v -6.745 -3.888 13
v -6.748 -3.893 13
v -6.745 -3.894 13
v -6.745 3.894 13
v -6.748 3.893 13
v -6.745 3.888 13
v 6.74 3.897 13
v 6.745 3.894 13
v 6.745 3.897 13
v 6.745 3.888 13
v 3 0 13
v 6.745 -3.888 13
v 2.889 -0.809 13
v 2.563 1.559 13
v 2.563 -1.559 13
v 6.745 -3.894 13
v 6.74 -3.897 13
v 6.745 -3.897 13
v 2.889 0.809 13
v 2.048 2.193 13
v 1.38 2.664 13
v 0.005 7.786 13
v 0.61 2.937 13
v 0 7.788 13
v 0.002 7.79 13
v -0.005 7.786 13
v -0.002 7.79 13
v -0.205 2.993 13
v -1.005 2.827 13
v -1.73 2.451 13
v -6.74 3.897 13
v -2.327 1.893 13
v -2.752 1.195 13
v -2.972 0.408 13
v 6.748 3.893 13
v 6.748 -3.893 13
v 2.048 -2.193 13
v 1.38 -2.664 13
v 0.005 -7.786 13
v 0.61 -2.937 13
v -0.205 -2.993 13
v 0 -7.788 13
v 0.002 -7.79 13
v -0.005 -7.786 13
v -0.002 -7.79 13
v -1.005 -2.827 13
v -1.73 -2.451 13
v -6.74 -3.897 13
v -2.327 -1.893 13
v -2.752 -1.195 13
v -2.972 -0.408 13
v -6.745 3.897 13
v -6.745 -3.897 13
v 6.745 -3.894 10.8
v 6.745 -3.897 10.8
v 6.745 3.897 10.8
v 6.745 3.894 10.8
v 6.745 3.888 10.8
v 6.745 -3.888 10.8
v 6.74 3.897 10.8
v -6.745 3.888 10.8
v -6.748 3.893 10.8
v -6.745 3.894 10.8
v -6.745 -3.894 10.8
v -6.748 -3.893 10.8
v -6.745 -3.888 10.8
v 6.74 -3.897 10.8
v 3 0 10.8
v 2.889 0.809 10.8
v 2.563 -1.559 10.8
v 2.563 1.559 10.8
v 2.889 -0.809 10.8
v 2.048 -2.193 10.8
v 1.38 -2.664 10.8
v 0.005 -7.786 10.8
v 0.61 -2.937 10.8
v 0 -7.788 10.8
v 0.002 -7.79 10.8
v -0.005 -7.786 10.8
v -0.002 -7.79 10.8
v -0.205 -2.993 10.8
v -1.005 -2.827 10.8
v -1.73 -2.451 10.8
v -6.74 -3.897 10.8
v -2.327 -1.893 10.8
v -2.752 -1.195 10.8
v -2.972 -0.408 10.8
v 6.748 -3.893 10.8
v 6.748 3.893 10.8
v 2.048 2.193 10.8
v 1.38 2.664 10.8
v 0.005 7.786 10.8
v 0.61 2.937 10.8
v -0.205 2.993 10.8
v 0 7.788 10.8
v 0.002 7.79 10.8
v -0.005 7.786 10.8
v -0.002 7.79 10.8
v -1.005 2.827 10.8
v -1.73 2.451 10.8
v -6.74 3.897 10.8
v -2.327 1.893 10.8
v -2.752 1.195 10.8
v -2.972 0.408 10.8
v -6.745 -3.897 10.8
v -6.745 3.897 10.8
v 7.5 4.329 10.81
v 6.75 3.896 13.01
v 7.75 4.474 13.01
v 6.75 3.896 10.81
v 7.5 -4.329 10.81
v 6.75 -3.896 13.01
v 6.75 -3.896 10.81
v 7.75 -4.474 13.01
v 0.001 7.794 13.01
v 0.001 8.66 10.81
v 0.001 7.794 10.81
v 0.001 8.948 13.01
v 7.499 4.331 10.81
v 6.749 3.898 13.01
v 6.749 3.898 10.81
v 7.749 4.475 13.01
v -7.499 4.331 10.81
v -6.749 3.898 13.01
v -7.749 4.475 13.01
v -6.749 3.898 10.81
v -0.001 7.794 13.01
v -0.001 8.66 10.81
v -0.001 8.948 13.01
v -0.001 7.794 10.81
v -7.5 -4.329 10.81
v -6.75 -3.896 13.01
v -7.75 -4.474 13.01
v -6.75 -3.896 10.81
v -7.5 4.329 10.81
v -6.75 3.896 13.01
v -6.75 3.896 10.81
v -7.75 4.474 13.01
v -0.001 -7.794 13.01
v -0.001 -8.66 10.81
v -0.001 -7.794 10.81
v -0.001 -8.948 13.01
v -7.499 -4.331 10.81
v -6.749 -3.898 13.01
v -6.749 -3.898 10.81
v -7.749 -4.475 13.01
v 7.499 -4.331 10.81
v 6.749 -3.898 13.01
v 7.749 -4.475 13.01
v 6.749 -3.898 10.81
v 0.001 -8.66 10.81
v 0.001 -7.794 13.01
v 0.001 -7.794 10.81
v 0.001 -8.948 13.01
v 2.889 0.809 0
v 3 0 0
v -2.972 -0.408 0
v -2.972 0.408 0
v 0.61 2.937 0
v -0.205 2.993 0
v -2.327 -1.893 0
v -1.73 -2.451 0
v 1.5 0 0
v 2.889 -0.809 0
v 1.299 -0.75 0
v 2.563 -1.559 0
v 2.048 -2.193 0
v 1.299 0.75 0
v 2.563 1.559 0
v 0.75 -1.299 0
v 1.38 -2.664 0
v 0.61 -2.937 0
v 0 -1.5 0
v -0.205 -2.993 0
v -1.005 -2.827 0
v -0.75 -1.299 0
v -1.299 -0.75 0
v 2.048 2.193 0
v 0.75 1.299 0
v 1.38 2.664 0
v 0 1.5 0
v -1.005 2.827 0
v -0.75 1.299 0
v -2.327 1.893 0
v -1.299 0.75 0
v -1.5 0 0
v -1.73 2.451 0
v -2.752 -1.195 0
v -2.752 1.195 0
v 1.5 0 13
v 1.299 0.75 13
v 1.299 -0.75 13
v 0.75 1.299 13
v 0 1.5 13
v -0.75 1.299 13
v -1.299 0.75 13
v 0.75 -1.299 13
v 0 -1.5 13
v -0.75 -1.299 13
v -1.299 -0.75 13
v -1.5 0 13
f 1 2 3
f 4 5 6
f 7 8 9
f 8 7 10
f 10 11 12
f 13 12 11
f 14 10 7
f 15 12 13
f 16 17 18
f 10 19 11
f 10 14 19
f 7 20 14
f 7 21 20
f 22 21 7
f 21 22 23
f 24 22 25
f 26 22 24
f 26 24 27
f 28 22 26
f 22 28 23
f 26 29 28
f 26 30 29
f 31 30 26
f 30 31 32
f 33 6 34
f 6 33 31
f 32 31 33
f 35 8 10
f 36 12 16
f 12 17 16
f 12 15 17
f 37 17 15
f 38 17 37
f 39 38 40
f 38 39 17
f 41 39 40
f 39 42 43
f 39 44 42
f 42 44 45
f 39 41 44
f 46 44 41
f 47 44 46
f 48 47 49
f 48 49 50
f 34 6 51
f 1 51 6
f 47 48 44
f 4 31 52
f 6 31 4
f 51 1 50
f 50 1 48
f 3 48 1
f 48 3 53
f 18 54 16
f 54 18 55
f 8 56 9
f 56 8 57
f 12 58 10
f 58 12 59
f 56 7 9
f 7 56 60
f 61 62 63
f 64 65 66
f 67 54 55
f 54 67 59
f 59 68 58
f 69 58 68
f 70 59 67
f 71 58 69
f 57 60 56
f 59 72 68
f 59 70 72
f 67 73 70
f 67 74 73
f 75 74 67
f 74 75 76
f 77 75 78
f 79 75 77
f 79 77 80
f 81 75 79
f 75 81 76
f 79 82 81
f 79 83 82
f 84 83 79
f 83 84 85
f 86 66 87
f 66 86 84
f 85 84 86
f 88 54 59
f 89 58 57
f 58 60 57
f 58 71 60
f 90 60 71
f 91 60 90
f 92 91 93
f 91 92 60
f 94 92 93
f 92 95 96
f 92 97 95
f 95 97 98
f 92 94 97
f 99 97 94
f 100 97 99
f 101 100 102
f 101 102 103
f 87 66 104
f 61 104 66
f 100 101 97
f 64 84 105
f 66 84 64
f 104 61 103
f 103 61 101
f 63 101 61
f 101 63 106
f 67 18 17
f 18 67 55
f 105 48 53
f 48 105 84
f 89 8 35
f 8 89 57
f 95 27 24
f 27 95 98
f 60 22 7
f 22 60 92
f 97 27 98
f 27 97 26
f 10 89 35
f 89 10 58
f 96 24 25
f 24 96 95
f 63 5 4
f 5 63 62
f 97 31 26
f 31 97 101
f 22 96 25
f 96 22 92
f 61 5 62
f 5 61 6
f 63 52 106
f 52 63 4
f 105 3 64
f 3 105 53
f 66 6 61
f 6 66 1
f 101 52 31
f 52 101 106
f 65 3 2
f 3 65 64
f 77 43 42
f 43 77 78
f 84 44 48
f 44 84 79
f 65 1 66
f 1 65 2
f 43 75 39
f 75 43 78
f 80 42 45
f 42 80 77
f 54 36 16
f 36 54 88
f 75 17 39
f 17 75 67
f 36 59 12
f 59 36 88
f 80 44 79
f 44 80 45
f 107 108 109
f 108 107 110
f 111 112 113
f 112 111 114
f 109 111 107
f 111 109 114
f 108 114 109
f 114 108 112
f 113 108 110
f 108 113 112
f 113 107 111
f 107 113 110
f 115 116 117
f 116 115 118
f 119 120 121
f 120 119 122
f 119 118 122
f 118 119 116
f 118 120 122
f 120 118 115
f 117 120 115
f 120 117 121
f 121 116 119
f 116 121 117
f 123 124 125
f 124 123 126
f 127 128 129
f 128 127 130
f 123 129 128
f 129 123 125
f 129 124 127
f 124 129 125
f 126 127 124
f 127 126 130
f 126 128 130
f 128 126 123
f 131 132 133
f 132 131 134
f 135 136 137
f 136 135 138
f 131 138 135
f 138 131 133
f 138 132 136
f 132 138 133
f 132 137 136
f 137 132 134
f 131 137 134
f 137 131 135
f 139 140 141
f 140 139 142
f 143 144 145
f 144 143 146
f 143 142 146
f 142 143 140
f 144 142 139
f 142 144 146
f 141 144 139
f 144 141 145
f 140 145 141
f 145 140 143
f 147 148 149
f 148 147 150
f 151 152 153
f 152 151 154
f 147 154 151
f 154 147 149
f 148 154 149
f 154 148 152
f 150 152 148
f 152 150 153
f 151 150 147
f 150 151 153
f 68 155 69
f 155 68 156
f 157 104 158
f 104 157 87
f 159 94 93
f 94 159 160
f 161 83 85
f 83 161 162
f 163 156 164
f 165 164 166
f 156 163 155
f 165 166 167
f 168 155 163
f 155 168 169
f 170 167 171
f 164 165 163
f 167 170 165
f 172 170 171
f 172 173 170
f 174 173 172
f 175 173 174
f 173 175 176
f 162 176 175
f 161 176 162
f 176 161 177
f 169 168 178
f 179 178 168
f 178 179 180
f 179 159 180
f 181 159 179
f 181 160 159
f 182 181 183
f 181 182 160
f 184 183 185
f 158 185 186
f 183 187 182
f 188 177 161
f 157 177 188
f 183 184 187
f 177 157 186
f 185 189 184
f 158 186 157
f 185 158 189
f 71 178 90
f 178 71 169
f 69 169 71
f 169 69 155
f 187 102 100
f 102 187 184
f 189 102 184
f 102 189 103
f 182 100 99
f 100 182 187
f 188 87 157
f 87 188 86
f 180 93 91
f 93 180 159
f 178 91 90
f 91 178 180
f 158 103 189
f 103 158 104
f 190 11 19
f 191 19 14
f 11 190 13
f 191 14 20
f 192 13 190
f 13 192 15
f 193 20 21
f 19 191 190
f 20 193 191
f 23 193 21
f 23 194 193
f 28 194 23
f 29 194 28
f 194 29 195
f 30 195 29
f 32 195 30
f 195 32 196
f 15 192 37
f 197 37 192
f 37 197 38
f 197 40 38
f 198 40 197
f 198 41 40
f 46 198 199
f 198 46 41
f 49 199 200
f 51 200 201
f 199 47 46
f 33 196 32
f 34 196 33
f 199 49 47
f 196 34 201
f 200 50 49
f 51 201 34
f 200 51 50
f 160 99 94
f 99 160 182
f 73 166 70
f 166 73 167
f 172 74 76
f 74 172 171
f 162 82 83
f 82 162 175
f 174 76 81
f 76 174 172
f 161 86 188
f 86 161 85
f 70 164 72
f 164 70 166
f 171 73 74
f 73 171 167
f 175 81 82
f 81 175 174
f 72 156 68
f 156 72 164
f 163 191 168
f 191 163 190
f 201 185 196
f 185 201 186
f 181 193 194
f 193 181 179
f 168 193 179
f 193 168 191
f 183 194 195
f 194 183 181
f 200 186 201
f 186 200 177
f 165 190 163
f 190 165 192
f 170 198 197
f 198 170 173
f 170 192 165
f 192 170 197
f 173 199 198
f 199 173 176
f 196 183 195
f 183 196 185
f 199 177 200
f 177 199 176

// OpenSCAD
// file: ../Lib/Transforms.scad
module shine(angle=10, length=10, height=10, center=true) {
    if($children != 0) {
        intersection() {
            linear_extrude(height) {
                if(center) {
                    polygon([[0,0] , [length*cos(angle/2),length*sin(angle/2)] , [length,0] , [length*cos(-angle/2),length*sin(-angle/2)]]);
                }
                else {
                    polygon([[0,0] , [length*cos(angle),length*sin(angle)] ,  [length*cos(angle/2),length*sin(angle/2)] , [length,0]]);
                }
            } 
            children(); 
        }
    }   
    else {
        linear_extrude(height) {
            if(center) {
                polygon([[0,0] , [length*cos(angle/2),length*sin(angle/2)] , [length,0] , [length*cos(-angle/2),length*sin(-angle/2)]]);
            }
            else {
                polygon([[0,0] , [length*cos(angle),length*sin(angle)] ,  [length*cos(angle/2),length*sin(angle/2)] , [length,0]]);
            }
        }
    }  
}  

    
module cut(size=[10,10,10],translation=[0,0,0]) {
    intersection() {
        children();
        translate(translation) cube(size);
    }
}
// file: ../Lib/NewHexGrid.scad
use <../Lib/Transforms.scad>

defaultHexSize = 17.5;
beamSize = 1;			//Thickness of the beam
beamHeight = 2.2;			//The height of either one of the upper or lower beams.
beamOuterShift = 1.6;		//How far should the outer edge point of the transition from either lower or upper section to middle section be shifted inwards?
beamShift = 1.6;			//How far should the two sections be spread apart?

beamPlay = 0.25; 			//How much room should be left between 

module lowerHex(hexSize = defaultHexSize) {
	render() for(i=[0:5]) rotate([0,0, 360/6 * i]) 
		shine(length = hexSize, height= beamHeight*2, angle = 59.99) 
		translate([hexSize/2 - beamSize*2, 
			tan(30) * (hexSize- beamSize*2) /2, 0.01]) 
		rotate([90, 0, 0]) 
		linear_extrude(height= tan(30) * (hexSize - beamSize*2))
		polygon([[0,0], [beamSize - beamPlay, 0], [beamSize, beamHeight], [0, beamHeight]]);
}

module hexFill(hexSize = defaultHexSize) {
	for(i=[0:60:360]) rotate([0, 0, i]) translate([0, -tan(30)*(hexSize - beamSize*4)/2, 0]) cube([(hexSize - beamSize*4 - 0.01)/2, tan(30)*(hexSize - beamSize *4), beamHeight]);
}

module middleHex(hexSize = defaultHexSize, aligned= true) {
	if(aligned) translate([0,0, beamHeight]) middleHex(hexSize, aligned = false);
	else 
	render() for(i=[0:5]) rotate([0,0, 360/6 *i])
		shine(length = hexSize, height= beamHeight*2, angle = 60.02)
		rotate([90,0,0]) 
		translate([0, 0, -tan(30) * hexSize/2]) 
		linear_extrude(height= tan(30)* (hexSize))
			polygon([	[hexSize/2 - beamSize*2, 0],
						[hexSize/2 - beamSize, 0],
						[hexSize/2, beamShift + 0.01],
						[hexSize/2 - beamSize, beamShift + 0.01]]);
}

module upperHex(hexSize = defaultHexSize, aligned= true) {
	if(aligned) translate([0,0, beamHeight + beamShift]) upperHex(hexSize, aligned = false);
	else 
	render() for(i=[0:5]) rotate([0,0, 360/6 * i]) 
		translate([hexSize/2 - beamSize, 
			-tan(30) * (hexSize) * 0.5, 0]) 
		cube([beamSize + 0.01, tan(30)* (hexSize), beamHeight]);
}

module hex(hexSize = defaultHexSize) {
	render() {
		lowerHex();	
		middleHex(aligned=true);
		upperHex(aligned=true);
	}
}

module hexPattern(i, hexSize = defaultHexSize) {
	render() for(x=i) {
		if(x[1] % 2 != 0)
			translate([hexSize * x[0] + hexSize/2, x[1] * hexSize * sin(60)]) children();
		else 
			translate([hexSize * x[0], x[1] * sin(60) * hexSize]) children();
	}
}

lowerHex();
hexFill();
// main file
use <../Lib/NewHexGrid.scad>

hexFillRadius = 17.5 - 3;
hexFillHeight = 2.2;

module connectorHex() {
	hexFill();
	lowerHex();
}

screwConnectorLength = 13;
screwConnectorThickness = 1.5;

module screwCylinder() {
	$fs = 0.85;
	difference() {
		union() {
			children();
			cylinder(r = 3/2 + screwConnectorThickness, h= screwConnectorLength);
		}
		cylinder(r= 3/2, h= screwConnectorLength);
	}
}

module sensorConnector() {
	screwCylinder()
	translate([0, 0, screwConnectorLength - hexFillHeight]) connectorHex();
}

sensorConnector();
